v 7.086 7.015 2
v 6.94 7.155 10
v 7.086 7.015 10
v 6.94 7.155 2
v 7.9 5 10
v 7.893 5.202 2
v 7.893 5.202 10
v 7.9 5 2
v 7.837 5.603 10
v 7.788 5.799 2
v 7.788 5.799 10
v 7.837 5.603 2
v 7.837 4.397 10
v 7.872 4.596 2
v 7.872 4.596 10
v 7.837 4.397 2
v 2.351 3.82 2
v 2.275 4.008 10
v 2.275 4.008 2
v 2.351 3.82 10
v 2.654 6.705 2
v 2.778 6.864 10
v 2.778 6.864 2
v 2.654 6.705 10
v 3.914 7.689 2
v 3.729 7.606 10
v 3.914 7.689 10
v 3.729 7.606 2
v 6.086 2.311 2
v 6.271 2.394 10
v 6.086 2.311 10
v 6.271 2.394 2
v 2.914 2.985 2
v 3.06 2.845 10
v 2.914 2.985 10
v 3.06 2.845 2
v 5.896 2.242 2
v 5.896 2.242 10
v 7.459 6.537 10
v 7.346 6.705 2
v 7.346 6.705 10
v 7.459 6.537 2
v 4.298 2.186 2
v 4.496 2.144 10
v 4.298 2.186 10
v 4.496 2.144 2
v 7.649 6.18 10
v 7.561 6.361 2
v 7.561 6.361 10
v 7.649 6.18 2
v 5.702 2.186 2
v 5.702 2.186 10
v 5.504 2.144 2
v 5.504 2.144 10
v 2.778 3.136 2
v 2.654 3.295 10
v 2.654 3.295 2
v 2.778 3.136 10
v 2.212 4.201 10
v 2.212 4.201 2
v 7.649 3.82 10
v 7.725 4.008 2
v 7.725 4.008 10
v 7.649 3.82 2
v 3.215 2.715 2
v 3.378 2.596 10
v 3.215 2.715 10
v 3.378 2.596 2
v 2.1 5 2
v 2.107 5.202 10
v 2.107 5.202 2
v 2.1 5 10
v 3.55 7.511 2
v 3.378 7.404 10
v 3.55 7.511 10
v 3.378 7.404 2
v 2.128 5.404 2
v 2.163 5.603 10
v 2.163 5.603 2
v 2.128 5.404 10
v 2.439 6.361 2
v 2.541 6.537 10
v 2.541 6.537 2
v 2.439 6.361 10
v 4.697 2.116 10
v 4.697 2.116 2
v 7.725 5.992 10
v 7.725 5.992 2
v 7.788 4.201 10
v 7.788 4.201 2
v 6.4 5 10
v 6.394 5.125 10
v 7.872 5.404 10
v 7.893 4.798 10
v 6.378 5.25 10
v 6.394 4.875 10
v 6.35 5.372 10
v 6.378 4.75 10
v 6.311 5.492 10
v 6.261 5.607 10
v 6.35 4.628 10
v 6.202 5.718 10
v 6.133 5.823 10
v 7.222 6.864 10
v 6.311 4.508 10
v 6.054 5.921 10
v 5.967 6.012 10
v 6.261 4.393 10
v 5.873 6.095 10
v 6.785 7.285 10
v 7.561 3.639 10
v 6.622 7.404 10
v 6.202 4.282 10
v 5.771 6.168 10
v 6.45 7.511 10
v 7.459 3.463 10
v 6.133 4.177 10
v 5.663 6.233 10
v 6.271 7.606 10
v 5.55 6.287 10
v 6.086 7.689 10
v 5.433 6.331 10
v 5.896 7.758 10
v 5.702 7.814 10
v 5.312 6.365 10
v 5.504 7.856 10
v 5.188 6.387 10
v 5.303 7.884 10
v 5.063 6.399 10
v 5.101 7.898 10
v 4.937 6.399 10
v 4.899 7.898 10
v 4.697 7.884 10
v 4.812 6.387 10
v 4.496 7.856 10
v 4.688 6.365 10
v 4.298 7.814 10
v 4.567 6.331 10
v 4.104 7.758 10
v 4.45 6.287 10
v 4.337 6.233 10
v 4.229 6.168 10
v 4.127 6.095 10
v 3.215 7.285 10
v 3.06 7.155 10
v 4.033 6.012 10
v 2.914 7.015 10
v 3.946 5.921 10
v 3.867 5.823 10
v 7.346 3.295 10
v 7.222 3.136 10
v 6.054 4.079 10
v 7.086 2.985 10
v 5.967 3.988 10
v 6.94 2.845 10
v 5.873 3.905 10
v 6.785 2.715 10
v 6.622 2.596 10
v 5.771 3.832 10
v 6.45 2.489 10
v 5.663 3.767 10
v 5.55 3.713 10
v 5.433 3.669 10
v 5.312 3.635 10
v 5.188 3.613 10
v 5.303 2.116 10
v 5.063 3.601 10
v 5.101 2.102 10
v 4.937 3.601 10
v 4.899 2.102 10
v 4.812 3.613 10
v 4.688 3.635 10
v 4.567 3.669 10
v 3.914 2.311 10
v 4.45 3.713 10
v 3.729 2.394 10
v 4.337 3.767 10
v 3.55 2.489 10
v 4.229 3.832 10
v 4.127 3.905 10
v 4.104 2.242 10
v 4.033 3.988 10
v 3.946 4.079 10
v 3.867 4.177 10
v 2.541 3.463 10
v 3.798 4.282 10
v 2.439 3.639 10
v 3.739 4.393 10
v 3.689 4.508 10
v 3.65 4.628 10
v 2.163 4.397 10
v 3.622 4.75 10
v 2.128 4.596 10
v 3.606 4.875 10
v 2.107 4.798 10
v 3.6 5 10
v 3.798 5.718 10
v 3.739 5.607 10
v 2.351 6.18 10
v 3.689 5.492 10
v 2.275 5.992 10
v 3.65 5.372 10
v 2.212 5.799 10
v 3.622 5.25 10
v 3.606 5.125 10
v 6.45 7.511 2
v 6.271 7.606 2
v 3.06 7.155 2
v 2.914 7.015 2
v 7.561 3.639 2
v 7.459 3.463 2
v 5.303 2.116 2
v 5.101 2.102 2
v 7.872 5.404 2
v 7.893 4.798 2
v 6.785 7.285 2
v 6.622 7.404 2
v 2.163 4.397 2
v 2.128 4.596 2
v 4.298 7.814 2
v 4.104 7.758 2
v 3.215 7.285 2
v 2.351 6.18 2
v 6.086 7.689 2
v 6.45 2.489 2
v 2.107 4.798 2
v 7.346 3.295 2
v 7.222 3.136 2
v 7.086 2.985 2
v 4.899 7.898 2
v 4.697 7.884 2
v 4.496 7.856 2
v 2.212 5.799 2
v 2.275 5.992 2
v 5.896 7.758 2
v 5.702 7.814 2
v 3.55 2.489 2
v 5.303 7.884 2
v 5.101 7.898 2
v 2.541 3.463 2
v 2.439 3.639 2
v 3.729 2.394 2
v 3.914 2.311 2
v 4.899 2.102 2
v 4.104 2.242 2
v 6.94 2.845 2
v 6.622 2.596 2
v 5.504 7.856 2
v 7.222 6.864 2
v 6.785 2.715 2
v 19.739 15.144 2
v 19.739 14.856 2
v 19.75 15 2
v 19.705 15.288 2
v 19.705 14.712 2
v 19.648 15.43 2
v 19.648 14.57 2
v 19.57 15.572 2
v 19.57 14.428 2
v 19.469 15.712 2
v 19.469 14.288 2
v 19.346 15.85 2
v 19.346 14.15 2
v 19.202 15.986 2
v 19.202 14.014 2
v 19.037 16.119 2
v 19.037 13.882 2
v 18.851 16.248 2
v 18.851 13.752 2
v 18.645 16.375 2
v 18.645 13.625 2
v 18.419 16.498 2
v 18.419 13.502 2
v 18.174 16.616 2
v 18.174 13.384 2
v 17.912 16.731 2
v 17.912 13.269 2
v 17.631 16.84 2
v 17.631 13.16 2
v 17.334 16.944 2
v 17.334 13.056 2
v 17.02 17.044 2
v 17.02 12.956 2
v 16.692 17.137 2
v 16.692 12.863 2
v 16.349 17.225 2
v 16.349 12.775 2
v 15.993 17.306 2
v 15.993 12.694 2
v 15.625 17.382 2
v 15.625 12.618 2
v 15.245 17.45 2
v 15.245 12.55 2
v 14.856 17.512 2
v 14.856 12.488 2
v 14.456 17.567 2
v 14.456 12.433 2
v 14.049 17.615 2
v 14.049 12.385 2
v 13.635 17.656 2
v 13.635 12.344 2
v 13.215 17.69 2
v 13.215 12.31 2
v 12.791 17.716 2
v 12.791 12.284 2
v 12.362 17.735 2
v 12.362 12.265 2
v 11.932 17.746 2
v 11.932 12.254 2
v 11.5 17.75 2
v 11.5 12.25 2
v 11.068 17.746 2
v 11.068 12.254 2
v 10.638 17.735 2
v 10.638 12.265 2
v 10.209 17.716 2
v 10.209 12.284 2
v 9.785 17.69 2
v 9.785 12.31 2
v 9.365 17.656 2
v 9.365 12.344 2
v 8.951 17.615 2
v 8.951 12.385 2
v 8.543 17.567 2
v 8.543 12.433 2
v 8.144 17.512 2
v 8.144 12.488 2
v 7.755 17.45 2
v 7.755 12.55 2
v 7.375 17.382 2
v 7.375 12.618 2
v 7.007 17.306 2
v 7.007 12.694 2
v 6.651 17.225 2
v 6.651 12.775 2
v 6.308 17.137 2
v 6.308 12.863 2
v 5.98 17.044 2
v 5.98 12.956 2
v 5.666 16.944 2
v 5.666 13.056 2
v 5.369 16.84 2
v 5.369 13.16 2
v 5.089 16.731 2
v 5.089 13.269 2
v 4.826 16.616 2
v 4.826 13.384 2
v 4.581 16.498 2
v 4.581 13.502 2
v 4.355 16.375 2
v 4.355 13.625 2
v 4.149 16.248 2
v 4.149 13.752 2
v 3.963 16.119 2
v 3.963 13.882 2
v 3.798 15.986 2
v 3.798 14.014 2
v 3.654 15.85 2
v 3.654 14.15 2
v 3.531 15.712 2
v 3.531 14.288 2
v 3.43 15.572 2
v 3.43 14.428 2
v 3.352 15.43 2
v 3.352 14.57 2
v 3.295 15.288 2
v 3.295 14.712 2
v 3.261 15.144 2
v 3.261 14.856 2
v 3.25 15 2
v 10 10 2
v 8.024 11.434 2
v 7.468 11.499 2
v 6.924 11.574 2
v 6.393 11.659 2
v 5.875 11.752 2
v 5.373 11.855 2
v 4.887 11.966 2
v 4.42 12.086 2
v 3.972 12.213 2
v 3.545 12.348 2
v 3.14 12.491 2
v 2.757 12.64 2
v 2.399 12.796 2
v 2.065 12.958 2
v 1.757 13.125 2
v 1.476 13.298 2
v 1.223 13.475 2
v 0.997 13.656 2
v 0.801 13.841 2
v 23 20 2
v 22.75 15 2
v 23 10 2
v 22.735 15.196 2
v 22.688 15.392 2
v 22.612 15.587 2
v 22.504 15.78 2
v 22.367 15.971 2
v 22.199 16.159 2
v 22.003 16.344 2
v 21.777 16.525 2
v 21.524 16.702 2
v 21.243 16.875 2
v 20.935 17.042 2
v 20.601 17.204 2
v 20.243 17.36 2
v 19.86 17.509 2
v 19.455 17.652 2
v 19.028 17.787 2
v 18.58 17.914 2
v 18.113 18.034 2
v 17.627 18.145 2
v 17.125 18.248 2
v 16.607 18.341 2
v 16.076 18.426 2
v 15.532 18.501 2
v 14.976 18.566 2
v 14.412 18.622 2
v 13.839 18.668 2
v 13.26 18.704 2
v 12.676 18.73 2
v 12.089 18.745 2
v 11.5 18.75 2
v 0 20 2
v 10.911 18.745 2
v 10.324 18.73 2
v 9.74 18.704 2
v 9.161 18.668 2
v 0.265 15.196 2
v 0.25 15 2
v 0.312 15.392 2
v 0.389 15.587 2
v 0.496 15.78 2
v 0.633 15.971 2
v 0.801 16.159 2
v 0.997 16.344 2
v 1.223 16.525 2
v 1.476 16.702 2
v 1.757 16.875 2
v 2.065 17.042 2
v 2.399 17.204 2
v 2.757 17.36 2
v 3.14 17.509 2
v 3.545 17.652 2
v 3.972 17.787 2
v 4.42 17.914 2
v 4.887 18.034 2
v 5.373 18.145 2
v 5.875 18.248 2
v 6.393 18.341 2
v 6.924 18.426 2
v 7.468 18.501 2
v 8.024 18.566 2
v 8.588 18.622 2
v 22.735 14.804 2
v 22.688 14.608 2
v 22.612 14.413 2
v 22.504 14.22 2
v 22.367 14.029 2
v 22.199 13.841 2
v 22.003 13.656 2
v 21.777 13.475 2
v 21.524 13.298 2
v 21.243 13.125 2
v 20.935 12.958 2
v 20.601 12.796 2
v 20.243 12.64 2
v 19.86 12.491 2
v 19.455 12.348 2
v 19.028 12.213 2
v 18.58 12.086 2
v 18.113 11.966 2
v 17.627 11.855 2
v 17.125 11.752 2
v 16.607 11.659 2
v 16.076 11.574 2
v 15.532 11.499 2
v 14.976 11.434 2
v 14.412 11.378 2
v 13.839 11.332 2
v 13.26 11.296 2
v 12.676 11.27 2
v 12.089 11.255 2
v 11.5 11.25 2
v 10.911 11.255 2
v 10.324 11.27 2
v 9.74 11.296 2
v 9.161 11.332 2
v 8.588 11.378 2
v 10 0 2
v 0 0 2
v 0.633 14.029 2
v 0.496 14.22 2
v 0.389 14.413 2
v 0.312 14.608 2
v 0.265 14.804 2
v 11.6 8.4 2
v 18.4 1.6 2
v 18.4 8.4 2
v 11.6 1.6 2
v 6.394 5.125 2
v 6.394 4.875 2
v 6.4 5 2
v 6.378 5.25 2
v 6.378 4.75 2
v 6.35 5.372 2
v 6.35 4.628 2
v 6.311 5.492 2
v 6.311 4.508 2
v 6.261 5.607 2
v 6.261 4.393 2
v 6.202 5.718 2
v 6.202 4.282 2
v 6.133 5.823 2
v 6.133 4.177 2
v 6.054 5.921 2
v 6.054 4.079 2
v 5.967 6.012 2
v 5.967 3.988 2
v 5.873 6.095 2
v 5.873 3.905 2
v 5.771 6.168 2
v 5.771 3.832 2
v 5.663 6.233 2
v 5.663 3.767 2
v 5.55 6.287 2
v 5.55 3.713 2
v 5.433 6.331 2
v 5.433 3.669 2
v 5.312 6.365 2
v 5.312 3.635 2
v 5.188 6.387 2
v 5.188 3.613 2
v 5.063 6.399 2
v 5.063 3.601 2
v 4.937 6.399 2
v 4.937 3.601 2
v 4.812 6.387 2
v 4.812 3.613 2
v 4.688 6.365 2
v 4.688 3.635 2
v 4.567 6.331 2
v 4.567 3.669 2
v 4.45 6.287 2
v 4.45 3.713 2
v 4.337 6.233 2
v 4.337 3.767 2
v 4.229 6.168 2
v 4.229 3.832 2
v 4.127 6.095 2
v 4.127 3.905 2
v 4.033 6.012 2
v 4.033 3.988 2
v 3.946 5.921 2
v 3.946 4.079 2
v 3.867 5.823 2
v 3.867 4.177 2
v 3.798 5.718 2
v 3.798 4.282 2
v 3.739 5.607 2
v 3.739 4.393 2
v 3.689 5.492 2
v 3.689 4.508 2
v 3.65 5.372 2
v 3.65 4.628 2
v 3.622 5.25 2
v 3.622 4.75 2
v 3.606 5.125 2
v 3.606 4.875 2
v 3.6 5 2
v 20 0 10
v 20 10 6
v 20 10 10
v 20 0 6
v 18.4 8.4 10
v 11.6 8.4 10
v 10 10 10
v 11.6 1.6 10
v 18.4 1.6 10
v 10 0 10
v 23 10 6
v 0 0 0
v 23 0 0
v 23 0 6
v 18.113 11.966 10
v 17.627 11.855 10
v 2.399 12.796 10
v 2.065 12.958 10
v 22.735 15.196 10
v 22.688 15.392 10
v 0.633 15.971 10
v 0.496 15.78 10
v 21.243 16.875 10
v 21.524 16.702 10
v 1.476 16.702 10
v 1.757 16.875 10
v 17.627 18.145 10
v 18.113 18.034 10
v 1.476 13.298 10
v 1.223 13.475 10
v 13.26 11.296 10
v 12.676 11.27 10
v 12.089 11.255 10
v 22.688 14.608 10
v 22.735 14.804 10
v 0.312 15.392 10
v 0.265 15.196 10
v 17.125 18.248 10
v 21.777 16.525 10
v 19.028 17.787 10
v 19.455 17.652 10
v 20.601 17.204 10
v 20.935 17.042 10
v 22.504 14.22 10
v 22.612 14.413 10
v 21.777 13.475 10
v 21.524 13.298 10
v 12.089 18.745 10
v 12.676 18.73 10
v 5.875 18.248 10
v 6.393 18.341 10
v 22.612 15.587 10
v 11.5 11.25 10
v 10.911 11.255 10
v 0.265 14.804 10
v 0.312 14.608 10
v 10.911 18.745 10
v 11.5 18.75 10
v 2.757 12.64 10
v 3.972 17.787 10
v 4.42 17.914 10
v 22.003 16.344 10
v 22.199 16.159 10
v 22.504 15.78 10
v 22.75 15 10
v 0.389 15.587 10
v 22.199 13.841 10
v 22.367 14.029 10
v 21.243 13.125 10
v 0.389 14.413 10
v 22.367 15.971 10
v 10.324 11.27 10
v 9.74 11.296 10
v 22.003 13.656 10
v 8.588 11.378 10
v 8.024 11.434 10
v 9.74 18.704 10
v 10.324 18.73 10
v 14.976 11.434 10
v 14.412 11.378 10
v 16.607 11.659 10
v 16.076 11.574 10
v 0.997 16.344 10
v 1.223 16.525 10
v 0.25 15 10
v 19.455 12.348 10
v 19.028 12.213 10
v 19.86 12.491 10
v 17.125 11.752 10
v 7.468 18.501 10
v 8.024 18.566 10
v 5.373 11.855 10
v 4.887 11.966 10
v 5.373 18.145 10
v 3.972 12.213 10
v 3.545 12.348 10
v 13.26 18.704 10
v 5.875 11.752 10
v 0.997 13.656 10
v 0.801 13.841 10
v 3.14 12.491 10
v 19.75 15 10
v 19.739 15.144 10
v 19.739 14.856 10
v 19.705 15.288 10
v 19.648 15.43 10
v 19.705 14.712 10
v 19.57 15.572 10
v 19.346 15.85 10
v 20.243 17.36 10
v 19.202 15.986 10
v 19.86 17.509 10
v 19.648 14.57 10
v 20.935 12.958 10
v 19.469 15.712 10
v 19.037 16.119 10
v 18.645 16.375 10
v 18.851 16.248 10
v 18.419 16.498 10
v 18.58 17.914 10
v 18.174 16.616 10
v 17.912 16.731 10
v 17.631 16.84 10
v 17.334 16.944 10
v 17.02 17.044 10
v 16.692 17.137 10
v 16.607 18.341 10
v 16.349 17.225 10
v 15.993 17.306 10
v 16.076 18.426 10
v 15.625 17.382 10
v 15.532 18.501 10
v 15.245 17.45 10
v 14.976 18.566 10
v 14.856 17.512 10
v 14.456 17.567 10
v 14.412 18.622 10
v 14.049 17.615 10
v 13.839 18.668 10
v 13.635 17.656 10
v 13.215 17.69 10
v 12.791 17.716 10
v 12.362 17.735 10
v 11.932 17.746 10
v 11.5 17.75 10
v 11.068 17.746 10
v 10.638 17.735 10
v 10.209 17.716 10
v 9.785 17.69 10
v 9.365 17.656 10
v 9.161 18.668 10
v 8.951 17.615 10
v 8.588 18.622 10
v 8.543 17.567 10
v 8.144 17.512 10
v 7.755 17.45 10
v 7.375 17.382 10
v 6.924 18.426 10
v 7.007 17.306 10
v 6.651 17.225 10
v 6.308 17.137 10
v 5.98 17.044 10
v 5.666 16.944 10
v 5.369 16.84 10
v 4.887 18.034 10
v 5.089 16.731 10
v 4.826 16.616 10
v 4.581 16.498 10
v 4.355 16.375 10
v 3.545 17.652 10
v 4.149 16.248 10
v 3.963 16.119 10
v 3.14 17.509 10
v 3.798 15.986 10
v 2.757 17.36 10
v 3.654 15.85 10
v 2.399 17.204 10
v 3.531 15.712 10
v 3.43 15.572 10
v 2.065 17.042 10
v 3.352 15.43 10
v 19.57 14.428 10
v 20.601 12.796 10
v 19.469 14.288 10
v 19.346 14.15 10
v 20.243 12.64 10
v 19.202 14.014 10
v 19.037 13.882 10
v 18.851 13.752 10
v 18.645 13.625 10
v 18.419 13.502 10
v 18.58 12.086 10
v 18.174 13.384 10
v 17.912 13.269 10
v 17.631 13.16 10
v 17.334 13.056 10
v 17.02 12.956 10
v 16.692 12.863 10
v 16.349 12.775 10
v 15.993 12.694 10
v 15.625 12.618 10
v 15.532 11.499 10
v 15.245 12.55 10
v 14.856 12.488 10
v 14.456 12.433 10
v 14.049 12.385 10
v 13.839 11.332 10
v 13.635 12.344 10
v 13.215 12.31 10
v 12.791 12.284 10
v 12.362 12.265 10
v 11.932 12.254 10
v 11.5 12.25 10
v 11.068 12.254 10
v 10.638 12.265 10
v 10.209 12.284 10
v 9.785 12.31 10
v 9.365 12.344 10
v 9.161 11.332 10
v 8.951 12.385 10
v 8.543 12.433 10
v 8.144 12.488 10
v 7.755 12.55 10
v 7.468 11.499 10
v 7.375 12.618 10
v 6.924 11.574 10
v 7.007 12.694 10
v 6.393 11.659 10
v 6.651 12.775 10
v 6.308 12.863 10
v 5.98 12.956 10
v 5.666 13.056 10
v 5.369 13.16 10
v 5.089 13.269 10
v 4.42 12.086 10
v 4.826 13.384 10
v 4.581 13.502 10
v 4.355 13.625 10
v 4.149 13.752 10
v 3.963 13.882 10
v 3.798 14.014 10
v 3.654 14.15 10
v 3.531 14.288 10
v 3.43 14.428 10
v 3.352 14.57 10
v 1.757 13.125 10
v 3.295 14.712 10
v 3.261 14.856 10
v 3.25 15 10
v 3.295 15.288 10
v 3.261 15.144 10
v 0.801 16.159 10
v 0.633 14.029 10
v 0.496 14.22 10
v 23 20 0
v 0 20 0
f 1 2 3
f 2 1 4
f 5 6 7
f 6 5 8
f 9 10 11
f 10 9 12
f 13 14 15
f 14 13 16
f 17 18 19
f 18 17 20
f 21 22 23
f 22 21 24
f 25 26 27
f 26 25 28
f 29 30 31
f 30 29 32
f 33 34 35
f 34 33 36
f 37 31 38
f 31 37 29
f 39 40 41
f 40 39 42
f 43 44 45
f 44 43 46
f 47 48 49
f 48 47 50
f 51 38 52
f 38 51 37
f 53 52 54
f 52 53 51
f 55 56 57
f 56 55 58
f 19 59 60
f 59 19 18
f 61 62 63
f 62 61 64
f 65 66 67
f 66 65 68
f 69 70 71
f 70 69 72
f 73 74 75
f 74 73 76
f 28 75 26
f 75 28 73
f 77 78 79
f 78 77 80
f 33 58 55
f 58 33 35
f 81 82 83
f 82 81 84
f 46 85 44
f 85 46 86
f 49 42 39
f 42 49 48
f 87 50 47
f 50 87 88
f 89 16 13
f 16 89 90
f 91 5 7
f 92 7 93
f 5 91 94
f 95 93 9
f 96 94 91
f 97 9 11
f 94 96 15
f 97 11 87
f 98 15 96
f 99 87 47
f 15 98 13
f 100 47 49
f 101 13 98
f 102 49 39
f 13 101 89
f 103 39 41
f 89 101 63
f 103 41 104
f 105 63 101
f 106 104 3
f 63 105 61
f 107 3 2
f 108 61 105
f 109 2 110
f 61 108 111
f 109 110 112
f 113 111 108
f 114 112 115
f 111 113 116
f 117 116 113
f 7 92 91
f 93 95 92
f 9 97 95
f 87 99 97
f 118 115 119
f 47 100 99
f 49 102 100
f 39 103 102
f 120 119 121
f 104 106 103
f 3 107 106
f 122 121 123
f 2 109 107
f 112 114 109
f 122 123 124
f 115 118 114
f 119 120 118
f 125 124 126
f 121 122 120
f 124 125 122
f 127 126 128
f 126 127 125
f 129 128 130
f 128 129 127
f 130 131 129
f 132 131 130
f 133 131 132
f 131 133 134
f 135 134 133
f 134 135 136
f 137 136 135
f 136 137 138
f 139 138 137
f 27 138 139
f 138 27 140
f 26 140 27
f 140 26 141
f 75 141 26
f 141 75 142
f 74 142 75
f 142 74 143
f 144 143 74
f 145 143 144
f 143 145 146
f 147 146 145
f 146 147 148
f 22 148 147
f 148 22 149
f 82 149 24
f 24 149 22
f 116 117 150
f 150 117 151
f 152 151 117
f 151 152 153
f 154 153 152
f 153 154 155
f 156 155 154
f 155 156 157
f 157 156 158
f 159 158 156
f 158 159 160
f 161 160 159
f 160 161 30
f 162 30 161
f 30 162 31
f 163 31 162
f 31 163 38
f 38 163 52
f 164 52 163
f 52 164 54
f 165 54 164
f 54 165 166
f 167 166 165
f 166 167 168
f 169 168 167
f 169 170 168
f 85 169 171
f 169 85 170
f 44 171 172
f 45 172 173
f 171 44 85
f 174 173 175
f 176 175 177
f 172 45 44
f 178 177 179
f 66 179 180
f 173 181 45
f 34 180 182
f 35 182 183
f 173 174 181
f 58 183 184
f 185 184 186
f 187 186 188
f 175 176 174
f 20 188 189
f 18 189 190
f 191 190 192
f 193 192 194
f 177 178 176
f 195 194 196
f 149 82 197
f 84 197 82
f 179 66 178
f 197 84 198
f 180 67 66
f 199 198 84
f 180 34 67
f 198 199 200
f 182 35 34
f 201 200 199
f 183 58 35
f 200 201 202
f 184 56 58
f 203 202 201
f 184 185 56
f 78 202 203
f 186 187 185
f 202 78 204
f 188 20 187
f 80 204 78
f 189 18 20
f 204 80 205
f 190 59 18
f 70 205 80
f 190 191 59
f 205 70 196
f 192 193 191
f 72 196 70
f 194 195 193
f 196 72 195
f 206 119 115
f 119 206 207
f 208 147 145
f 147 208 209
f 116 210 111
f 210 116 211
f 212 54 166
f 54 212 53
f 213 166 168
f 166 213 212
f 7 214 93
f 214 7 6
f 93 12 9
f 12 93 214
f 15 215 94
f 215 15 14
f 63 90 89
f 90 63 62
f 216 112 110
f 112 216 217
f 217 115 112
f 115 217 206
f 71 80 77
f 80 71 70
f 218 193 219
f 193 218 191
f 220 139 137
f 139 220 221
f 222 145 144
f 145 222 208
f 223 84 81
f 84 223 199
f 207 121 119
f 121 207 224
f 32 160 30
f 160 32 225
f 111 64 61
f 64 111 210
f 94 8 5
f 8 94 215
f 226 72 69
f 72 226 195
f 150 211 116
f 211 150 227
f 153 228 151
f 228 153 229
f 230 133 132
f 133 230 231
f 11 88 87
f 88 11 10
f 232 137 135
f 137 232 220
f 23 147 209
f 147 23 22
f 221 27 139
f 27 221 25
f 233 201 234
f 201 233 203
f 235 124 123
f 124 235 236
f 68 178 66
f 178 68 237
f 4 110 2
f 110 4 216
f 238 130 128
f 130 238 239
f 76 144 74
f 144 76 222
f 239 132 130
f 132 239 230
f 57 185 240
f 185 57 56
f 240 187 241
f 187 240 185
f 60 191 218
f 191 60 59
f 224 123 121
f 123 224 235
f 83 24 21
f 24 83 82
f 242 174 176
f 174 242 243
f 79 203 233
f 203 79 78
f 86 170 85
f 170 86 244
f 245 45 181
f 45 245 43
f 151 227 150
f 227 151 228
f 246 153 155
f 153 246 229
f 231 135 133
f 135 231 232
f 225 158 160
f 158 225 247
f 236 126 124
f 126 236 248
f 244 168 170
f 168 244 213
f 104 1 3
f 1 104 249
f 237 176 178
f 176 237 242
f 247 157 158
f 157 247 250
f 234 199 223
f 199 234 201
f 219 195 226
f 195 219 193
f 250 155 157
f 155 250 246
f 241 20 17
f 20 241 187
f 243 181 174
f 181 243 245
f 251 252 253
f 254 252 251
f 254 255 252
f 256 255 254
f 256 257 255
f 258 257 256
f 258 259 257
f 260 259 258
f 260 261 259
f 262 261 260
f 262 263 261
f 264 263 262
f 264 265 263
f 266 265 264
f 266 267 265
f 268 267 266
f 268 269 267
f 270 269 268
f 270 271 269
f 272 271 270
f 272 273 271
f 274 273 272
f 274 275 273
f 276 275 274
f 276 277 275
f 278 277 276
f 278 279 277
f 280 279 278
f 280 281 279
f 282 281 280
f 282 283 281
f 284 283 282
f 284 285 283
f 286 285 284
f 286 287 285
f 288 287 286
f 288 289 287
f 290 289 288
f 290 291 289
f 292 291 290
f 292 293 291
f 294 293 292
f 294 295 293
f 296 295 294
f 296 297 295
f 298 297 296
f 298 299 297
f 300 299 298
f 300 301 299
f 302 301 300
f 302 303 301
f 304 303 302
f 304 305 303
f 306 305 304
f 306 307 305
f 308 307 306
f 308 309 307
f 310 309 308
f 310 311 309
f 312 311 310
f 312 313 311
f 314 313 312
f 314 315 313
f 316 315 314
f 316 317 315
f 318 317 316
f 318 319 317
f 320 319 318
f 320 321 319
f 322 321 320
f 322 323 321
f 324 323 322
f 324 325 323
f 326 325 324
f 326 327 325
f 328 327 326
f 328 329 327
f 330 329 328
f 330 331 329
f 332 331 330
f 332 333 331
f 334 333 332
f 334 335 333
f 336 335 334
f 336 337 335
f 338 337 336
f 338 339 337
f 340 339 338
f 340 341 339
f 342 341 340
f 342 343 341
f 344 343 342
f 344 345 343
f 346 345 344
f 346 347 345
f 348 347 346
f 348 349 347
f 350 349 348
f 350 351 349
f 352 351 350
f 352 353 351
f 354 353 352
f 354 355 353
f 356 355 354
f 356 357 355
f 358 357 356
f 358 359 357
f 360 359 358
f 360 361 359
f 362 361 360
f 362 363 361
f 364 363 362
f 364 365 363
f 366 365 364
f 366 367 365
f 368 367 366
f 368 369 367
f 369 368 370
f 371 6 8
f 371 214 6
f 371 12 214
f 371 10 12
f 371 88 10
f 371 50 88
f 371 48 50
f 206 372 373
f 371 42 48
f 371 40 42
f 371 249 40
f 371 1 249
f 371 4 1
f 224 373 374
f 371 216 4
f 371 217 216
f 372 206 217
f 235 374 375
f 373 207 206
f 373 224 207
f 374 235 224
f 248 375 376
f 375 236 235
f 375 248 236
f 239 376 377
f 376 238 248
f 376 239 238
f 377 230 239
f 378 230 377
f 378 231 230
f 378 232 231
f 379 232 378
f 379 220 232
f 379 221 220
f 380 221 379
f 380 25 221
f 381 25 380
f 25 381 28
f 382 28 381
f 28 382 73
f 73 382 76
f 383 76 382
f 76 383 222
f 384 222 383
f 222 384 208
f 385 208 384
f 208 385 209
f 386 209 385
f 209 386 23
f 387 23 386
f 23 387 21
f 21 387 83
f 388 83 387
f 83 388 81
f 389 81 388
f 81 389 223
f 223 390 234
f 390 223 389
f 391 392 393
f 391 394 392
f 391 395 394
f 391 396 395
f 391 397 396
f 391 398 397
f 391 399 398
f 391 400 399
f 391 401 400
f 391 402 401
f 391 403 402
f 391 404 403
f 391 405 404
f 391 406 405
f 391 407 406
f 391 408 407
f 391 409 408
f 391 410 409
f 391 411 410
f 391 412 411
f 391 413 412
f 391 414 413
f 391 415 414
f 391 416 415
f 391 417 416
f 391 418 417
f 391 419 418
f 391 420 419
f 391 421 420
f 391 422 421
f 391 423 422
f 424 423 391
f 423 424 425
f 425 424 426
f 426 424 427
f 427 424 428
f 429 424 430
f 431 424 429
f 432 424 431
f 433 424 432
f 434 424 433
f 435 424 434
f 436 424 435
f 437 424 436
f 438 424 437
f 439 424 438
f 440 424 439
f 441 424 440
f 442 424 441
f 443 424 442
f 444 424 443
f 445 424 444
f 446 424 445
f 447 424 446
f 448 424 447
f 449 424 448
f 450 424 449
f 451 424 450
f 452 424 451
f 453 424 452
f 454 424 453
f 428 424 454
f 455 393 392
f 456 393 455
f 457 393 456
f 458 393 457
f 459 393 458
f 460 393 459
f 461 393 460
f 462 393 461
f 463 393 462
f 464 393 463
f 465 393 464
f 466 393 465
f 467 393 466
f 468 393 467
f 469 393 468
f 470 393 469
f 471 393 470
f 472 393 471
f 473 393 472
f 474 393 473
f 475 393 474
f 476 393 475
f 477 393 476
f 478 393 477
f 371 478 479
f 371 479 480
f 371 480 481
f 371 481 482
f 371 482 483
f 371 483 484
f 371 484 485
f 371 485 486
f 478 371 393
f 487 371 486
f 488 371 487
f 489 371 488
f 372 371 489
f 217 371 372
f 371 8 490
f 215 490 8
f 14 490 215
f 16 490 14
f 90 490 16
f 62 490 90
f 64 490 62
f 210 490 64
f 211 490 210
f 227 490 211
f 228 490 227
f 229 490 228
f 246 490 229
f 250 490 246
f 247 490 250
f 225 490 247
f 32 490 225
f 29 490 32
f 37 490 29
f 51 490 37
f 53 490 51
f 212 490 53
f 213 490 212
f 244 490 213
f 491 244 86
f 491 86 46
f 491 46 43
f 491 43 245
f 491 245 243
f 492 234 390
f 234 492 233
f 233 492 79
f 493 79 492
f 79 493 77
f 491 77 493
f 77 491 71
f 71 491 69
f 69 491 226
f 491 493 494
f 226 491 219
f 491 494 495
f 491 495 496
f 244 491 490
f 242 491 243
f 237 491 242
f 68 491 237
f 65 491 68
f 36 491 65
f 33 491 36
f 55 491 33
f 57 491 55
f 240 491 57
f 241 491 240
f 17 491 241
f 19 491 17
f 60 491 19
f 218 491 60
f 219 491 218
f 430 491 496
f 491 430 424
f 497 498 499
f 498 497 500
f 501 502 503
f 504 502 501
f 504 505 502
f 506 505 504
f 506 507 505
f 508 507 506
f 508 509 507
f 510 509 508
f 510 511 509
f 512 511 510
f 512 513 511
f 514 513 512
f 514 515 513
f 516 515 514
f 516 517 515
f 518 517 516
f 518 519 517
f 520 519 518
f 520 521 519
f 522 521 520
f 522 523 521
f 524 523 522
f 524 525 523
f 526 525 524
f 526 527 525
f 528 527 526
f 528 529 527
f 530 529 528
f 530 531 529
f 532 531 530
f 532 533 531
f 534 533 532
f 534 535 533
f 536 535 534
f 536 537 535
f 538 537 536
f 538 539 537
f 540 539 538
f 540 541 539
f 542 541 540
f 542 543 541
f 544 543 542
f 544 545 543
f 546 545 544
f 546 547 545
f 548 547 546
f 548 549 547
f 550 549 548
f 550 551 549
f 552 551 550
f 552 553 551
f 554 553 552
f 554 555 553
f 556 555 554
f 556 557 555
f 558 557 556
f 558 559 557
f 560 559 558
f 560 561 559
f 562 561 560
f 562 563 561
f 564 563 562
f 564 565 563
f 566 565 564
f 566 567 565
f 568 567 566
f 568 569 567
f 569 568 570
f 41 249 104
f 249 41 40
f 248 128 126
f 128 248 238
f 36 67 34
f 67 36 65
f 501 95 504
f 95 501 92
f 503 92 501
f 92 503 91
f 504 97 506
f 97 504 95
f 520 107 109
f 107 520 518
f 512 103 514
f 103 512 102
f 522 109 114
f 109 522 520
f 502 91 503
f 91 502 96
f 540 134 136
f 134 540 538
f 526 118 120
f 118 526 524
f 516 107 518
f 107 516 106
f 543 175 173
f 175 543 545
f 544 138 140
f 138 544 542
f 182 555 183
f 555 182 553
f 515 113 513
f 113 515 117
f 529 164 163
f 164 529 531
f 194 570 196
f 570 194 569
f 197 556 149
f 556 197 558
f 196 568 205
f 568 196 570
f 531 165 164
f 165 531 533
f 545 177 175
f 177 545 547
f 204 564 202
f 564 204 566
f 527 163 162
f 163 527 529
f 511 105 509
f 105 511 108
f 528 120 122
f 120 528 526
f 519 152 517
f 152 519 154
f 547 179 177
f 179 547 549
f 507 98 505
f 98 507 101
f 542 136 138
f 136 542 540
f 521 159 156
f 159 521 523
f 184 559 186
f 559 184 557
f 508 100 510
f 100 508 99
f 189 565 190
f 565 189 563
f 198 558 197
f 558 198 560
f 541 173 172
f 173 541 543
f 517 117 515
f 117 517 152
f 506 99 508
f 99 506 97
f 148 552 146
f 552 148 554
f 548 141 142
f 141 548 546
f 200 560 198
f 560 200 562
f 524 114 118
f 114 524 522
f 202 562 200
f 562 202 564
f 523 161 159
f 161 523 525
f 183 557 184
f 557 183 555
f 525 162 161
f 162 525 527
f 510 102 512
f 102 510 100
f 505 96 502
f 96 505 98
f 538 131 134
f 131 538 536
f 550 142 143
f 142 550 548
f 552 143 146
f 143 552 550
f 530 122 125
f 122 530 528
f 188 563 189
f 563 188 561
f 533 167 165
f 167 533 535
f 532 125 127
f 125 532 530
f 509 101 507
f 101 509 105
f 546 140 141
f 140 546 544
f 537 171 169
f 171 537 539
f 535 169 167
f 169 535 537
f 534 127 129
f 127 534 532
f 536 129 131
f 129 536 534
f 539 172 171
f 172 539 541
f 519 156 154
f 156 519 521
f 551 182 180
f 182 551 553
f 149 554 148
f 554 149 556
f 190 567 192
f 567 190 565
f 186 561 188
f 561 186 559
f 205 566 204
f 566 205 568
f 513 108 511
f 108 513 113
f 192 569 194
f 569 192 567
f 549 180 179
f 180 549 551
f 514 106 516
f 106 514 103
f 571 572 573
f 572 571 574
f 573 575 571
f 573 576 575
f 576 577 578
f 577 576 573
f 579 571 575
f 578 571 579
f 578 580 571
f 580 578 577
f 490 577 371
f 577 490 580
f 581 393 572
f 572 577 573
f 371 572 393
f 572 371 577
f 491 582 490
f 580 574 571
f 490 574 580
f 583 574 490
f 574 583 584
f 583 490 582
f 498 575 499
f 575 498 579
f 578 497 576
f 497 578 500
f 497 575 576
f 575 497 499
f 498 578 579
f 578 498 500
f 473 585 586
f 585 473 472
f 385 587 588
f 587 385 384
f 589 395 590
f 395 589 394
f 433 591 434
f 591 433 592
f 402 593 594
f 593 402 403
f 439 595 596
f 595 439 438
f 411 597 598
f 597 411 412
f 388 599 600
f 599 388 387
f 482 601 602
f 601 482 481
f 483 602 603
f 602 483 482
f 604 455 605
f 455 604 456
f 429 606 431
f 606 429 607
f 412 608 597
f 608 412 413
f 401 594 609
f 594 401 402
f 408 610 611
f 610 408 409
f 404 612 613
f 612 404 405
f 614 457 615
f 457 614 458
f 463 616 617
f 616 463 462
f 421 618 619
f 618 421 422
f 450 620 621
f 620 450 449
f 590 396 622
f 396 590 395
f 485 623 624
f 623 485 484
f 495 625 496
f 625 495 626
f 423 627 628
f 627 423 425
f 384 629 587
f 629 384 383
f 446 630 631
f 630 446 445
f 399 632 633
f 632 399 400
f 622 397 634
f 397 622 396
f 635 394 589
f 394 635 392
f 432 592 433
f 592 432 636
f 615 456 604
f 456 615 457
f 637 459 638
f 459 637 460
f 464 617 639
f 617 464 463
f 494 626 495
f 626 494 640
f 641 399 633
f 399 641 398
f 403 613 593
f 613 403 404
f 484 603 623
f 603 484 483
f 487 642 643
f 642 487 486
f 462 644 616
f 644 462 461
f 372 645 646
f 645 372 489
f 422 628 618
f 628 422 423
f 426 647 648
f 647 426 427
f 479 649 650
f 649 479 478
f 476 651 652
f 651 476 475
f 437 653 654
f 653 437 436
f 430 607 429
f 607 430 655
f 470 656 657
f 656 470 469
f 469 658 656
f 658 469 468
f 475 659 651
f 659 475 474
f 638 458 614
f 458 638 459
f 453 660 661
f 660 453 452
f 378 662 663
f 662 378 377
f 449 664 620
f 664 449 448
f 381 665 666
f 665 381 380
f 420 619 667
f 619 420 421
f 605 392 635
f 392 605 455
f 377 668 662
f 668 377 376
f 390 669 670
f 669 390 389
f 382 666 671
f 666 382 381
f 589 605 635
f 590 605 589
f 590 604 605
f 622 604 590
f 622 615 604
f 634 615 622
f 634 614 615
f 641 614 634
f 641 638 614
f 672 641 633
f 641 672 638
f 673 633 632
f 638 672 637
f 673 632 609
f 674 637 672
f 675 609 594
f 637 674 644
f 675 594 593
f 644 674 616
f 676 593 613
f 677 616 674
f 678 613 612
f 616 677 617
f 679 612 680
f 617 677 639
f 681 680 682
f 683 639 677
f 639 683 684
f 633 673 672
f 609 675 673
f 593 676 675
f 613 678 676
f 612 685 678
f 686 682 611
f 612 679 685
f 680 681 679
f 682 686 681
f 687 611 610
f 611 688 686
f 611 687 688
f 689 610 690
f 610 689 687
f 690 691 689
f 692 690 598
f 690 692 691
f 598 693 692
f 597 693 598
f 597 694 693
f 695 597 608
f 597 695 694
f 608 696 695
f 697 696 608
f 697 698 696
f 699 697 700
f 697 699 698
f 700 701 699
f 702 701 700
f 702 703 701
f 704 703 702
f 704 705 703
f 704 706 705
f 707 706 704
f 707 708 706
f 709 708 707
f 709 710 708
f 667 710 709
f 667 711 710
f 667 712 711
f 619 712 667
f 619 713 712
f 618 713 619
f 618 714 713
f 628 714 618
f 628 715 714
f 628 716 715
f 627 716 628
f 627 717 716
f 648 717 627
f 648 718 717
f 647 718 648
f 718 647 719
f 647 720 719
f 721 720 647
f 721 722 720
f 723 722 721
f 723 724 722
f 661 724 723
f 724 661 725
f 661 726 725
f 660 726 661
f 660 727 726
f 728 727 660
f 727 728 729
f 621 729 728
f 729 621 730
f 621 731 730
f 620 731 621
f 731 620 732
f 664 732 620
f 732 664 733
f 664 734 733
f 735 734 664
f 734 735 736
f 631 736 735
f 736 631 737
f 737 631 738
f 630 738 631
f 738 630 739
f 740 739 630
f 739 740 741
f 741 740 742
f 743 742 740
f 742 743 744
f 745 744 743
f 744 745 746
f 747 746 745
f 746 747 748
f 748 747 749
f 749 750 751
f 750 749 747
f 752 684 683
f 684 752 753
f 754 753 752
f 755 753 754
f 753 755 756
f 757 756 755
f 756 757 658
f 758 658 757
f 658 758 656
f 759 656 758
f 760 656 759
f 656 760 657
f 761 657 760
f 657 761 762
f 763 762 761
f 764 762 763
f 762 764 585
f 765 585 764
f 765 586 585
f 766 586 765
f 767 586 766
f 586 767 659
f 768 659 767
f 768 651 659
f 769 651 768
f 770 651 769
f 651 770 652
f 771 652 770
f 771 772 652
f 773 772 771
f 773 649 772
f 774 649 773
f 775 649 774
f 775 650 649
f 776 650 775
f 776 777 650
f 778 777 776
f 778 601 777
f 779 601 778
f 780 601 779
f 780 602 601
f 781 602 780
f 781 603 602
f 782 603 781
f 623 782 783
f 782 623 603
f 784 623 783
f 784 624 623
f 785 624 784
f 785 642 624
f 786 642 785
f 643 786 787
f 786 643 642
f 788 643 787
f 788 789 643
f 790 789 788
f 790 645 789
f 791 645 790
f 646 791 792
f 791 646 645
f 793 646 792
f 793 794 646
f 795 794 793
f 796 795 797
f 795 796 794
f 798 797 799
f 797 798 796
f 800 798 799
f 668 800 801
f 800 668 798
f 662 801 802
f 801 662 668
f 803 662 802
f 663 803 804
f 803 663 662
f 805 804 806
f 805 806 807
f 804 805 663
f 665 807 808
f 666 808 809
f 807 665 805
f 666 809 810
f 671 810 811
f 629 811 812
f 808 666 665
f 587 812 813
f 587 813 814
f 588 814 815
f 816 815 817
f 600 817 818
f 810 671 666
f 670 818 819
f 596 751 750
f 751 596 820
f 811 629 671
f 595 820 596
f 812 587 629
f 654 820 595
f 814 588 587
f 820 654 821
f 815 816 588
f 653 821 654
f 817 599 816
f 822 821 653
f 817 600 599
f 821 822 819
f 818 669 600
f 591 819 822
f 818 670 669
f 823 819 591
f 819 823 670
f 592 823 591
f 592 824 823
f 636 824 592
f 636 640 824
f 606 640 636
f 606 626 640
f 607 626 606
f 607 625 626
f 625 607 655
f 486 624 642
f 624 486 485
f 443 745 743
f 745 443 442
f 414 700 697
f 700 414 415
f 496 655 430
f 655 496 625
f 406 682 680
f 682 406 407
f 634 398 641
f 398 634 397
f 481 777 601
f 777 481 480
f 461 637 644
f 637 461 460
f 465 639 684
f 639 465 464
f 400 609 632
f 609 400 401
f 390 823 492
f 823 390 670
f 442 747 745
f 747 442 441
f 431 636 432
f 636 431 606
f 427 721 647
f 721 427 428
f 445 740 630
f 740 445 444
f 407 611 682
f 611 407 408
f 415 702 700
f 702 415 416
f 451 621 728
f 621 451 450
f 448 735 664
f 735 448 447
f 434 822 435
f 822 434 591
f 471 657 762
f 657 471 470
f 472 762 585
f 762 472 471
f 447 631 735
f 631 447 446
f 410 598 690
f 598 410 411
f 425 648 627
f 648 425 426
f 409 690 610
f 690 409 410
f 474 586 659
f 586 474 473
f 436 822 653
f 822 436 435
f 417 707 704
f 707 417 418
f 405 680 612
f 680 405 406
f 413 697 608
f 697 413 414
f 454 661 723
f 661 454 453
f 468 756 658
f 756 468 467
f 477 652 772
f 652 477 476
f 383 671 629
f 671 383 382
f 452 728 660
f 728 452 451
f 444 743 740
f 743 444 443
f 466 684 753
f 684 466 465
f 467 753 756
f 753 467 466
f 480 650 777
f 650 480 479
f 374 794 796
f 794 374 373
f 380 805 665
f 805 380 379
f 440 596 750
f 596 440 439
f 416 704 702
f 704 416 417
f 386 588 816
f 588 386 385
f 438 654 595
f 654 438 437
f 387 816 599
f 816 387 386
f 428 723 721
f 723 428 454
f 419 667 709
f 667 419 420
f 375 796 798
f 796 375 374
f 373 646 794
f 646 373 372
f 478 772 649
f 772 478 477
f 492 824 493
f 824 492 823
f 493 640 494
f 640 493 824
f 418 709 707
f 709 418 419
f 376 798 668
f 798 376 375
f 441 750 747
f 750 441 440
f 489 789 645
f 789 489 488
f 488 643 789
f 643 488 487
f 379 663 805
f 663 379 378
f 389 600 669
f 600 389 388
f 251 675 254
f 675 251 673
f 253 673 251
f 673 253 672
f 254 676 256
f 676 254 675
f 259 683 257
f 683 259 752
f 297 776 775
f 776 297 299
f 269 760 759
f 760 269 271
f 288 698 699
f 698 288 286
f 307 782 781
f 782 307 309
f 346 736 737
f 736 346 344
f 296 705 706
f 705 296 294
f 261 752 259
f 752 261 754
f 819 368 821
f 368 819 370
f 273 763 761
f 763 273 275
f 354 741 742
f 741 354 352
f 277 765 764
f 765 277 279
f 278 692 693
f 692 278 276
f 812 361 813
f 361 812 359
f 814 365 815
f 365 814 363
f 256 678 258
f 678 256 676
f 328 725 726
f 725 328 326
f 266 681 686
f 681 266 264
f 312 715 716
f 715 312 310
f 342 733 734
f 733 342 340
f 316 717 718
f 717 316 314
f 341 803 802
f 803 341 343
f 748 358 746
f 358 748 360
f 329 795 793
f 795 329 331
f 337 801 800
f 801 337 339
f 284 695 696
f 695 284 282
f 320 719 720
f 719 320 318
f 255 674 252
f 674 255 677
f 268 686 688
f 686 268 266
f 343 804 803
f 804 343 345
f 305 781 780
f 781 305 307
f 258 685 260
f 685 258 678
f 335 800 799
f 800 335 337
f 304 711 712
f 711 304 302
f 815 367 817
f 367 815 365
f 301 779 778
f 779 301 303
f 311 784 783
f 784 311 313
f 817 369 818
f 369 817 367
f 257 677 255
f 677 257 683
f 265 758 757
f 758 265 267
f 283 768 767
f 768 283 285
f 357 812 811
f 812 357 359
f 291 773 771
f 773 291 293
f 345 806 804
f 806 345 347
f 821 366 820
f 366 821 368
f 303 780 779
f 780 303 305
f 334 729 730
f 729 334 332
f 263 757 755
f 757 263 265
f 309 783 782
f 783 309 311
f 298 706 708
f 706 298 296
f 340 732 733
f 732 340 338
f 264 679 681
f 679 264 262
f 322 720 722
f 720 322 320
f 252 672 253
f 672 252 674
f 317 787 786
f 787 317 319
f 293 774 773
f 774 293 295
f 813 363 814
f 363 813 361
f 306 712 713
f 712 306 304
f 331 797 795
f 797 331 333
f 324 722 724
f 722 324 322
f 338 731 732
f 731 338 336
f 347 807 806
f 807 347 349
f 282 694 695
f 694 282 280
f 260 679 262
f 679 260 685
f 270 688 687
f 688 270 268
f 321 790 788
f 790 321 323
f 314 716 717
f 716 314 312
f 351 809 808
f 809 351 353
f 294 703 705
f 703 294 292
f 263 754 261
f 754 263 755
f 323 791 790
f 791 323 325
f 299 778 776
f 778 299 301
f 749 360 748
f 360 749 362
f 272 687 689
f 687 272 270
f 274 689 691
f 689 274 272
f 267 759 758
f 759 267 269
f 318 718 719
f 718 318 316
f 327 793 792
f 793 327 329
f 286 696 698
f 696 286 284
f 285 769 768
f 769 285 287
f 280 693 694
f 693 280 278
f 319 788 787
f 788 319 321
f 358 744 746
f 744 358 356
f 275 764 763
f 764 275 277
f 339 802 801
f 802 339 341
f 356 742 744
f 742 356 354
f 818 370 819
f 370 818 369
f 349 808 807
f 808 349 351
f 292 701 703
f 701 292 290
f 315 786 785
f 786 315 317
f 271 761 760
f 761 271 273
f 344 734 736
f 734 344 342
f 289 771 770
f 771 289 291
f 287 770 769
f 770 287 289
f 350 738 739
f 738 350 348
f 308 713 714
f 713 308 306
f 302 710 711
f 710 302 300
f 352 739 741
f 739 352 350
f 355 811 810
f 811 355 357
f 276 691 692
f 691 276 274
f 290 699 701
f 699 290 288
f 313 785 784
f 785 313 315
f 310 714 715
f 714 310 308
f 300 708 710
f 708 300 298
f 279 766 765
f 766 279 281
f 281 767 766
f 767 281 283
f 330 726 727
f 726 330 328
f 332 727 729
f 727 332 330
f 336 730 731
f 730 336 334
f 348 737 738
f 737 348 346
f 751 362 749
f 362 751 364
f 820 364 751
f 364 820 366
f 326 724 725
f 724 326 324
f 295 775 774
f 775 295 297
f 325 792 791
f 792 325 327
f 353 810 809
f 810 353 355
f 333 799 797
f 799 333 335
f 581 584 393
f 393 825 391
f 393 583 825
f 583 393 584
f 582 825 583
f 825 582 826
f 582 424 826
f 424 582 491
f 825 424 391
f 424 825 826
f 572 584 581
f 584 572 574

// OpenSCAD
cube([23, 20, 2]);
translate([5, 5, 2]) difference() {
    cylinder(h=8, r=2.9, $fn=90);
    cylinder(h=9, r=1.4, $fn=70); 
}
translate([10, 0, 2]) difference() {
    cube([10, 10, 8]);
    translate([1.6, 1.6, 0]) cube([6.8, 6.8, 9]);
}
translate([20, 0, 2]) cube([3, 10, 4]);
translate([11.5, 15, 2])  scale([1.5,.5]) difference() {
    cylinder(h=8, r=7.5, $fn=120);
    cylinder(h=9, r=5.5, $fn=120);
}
